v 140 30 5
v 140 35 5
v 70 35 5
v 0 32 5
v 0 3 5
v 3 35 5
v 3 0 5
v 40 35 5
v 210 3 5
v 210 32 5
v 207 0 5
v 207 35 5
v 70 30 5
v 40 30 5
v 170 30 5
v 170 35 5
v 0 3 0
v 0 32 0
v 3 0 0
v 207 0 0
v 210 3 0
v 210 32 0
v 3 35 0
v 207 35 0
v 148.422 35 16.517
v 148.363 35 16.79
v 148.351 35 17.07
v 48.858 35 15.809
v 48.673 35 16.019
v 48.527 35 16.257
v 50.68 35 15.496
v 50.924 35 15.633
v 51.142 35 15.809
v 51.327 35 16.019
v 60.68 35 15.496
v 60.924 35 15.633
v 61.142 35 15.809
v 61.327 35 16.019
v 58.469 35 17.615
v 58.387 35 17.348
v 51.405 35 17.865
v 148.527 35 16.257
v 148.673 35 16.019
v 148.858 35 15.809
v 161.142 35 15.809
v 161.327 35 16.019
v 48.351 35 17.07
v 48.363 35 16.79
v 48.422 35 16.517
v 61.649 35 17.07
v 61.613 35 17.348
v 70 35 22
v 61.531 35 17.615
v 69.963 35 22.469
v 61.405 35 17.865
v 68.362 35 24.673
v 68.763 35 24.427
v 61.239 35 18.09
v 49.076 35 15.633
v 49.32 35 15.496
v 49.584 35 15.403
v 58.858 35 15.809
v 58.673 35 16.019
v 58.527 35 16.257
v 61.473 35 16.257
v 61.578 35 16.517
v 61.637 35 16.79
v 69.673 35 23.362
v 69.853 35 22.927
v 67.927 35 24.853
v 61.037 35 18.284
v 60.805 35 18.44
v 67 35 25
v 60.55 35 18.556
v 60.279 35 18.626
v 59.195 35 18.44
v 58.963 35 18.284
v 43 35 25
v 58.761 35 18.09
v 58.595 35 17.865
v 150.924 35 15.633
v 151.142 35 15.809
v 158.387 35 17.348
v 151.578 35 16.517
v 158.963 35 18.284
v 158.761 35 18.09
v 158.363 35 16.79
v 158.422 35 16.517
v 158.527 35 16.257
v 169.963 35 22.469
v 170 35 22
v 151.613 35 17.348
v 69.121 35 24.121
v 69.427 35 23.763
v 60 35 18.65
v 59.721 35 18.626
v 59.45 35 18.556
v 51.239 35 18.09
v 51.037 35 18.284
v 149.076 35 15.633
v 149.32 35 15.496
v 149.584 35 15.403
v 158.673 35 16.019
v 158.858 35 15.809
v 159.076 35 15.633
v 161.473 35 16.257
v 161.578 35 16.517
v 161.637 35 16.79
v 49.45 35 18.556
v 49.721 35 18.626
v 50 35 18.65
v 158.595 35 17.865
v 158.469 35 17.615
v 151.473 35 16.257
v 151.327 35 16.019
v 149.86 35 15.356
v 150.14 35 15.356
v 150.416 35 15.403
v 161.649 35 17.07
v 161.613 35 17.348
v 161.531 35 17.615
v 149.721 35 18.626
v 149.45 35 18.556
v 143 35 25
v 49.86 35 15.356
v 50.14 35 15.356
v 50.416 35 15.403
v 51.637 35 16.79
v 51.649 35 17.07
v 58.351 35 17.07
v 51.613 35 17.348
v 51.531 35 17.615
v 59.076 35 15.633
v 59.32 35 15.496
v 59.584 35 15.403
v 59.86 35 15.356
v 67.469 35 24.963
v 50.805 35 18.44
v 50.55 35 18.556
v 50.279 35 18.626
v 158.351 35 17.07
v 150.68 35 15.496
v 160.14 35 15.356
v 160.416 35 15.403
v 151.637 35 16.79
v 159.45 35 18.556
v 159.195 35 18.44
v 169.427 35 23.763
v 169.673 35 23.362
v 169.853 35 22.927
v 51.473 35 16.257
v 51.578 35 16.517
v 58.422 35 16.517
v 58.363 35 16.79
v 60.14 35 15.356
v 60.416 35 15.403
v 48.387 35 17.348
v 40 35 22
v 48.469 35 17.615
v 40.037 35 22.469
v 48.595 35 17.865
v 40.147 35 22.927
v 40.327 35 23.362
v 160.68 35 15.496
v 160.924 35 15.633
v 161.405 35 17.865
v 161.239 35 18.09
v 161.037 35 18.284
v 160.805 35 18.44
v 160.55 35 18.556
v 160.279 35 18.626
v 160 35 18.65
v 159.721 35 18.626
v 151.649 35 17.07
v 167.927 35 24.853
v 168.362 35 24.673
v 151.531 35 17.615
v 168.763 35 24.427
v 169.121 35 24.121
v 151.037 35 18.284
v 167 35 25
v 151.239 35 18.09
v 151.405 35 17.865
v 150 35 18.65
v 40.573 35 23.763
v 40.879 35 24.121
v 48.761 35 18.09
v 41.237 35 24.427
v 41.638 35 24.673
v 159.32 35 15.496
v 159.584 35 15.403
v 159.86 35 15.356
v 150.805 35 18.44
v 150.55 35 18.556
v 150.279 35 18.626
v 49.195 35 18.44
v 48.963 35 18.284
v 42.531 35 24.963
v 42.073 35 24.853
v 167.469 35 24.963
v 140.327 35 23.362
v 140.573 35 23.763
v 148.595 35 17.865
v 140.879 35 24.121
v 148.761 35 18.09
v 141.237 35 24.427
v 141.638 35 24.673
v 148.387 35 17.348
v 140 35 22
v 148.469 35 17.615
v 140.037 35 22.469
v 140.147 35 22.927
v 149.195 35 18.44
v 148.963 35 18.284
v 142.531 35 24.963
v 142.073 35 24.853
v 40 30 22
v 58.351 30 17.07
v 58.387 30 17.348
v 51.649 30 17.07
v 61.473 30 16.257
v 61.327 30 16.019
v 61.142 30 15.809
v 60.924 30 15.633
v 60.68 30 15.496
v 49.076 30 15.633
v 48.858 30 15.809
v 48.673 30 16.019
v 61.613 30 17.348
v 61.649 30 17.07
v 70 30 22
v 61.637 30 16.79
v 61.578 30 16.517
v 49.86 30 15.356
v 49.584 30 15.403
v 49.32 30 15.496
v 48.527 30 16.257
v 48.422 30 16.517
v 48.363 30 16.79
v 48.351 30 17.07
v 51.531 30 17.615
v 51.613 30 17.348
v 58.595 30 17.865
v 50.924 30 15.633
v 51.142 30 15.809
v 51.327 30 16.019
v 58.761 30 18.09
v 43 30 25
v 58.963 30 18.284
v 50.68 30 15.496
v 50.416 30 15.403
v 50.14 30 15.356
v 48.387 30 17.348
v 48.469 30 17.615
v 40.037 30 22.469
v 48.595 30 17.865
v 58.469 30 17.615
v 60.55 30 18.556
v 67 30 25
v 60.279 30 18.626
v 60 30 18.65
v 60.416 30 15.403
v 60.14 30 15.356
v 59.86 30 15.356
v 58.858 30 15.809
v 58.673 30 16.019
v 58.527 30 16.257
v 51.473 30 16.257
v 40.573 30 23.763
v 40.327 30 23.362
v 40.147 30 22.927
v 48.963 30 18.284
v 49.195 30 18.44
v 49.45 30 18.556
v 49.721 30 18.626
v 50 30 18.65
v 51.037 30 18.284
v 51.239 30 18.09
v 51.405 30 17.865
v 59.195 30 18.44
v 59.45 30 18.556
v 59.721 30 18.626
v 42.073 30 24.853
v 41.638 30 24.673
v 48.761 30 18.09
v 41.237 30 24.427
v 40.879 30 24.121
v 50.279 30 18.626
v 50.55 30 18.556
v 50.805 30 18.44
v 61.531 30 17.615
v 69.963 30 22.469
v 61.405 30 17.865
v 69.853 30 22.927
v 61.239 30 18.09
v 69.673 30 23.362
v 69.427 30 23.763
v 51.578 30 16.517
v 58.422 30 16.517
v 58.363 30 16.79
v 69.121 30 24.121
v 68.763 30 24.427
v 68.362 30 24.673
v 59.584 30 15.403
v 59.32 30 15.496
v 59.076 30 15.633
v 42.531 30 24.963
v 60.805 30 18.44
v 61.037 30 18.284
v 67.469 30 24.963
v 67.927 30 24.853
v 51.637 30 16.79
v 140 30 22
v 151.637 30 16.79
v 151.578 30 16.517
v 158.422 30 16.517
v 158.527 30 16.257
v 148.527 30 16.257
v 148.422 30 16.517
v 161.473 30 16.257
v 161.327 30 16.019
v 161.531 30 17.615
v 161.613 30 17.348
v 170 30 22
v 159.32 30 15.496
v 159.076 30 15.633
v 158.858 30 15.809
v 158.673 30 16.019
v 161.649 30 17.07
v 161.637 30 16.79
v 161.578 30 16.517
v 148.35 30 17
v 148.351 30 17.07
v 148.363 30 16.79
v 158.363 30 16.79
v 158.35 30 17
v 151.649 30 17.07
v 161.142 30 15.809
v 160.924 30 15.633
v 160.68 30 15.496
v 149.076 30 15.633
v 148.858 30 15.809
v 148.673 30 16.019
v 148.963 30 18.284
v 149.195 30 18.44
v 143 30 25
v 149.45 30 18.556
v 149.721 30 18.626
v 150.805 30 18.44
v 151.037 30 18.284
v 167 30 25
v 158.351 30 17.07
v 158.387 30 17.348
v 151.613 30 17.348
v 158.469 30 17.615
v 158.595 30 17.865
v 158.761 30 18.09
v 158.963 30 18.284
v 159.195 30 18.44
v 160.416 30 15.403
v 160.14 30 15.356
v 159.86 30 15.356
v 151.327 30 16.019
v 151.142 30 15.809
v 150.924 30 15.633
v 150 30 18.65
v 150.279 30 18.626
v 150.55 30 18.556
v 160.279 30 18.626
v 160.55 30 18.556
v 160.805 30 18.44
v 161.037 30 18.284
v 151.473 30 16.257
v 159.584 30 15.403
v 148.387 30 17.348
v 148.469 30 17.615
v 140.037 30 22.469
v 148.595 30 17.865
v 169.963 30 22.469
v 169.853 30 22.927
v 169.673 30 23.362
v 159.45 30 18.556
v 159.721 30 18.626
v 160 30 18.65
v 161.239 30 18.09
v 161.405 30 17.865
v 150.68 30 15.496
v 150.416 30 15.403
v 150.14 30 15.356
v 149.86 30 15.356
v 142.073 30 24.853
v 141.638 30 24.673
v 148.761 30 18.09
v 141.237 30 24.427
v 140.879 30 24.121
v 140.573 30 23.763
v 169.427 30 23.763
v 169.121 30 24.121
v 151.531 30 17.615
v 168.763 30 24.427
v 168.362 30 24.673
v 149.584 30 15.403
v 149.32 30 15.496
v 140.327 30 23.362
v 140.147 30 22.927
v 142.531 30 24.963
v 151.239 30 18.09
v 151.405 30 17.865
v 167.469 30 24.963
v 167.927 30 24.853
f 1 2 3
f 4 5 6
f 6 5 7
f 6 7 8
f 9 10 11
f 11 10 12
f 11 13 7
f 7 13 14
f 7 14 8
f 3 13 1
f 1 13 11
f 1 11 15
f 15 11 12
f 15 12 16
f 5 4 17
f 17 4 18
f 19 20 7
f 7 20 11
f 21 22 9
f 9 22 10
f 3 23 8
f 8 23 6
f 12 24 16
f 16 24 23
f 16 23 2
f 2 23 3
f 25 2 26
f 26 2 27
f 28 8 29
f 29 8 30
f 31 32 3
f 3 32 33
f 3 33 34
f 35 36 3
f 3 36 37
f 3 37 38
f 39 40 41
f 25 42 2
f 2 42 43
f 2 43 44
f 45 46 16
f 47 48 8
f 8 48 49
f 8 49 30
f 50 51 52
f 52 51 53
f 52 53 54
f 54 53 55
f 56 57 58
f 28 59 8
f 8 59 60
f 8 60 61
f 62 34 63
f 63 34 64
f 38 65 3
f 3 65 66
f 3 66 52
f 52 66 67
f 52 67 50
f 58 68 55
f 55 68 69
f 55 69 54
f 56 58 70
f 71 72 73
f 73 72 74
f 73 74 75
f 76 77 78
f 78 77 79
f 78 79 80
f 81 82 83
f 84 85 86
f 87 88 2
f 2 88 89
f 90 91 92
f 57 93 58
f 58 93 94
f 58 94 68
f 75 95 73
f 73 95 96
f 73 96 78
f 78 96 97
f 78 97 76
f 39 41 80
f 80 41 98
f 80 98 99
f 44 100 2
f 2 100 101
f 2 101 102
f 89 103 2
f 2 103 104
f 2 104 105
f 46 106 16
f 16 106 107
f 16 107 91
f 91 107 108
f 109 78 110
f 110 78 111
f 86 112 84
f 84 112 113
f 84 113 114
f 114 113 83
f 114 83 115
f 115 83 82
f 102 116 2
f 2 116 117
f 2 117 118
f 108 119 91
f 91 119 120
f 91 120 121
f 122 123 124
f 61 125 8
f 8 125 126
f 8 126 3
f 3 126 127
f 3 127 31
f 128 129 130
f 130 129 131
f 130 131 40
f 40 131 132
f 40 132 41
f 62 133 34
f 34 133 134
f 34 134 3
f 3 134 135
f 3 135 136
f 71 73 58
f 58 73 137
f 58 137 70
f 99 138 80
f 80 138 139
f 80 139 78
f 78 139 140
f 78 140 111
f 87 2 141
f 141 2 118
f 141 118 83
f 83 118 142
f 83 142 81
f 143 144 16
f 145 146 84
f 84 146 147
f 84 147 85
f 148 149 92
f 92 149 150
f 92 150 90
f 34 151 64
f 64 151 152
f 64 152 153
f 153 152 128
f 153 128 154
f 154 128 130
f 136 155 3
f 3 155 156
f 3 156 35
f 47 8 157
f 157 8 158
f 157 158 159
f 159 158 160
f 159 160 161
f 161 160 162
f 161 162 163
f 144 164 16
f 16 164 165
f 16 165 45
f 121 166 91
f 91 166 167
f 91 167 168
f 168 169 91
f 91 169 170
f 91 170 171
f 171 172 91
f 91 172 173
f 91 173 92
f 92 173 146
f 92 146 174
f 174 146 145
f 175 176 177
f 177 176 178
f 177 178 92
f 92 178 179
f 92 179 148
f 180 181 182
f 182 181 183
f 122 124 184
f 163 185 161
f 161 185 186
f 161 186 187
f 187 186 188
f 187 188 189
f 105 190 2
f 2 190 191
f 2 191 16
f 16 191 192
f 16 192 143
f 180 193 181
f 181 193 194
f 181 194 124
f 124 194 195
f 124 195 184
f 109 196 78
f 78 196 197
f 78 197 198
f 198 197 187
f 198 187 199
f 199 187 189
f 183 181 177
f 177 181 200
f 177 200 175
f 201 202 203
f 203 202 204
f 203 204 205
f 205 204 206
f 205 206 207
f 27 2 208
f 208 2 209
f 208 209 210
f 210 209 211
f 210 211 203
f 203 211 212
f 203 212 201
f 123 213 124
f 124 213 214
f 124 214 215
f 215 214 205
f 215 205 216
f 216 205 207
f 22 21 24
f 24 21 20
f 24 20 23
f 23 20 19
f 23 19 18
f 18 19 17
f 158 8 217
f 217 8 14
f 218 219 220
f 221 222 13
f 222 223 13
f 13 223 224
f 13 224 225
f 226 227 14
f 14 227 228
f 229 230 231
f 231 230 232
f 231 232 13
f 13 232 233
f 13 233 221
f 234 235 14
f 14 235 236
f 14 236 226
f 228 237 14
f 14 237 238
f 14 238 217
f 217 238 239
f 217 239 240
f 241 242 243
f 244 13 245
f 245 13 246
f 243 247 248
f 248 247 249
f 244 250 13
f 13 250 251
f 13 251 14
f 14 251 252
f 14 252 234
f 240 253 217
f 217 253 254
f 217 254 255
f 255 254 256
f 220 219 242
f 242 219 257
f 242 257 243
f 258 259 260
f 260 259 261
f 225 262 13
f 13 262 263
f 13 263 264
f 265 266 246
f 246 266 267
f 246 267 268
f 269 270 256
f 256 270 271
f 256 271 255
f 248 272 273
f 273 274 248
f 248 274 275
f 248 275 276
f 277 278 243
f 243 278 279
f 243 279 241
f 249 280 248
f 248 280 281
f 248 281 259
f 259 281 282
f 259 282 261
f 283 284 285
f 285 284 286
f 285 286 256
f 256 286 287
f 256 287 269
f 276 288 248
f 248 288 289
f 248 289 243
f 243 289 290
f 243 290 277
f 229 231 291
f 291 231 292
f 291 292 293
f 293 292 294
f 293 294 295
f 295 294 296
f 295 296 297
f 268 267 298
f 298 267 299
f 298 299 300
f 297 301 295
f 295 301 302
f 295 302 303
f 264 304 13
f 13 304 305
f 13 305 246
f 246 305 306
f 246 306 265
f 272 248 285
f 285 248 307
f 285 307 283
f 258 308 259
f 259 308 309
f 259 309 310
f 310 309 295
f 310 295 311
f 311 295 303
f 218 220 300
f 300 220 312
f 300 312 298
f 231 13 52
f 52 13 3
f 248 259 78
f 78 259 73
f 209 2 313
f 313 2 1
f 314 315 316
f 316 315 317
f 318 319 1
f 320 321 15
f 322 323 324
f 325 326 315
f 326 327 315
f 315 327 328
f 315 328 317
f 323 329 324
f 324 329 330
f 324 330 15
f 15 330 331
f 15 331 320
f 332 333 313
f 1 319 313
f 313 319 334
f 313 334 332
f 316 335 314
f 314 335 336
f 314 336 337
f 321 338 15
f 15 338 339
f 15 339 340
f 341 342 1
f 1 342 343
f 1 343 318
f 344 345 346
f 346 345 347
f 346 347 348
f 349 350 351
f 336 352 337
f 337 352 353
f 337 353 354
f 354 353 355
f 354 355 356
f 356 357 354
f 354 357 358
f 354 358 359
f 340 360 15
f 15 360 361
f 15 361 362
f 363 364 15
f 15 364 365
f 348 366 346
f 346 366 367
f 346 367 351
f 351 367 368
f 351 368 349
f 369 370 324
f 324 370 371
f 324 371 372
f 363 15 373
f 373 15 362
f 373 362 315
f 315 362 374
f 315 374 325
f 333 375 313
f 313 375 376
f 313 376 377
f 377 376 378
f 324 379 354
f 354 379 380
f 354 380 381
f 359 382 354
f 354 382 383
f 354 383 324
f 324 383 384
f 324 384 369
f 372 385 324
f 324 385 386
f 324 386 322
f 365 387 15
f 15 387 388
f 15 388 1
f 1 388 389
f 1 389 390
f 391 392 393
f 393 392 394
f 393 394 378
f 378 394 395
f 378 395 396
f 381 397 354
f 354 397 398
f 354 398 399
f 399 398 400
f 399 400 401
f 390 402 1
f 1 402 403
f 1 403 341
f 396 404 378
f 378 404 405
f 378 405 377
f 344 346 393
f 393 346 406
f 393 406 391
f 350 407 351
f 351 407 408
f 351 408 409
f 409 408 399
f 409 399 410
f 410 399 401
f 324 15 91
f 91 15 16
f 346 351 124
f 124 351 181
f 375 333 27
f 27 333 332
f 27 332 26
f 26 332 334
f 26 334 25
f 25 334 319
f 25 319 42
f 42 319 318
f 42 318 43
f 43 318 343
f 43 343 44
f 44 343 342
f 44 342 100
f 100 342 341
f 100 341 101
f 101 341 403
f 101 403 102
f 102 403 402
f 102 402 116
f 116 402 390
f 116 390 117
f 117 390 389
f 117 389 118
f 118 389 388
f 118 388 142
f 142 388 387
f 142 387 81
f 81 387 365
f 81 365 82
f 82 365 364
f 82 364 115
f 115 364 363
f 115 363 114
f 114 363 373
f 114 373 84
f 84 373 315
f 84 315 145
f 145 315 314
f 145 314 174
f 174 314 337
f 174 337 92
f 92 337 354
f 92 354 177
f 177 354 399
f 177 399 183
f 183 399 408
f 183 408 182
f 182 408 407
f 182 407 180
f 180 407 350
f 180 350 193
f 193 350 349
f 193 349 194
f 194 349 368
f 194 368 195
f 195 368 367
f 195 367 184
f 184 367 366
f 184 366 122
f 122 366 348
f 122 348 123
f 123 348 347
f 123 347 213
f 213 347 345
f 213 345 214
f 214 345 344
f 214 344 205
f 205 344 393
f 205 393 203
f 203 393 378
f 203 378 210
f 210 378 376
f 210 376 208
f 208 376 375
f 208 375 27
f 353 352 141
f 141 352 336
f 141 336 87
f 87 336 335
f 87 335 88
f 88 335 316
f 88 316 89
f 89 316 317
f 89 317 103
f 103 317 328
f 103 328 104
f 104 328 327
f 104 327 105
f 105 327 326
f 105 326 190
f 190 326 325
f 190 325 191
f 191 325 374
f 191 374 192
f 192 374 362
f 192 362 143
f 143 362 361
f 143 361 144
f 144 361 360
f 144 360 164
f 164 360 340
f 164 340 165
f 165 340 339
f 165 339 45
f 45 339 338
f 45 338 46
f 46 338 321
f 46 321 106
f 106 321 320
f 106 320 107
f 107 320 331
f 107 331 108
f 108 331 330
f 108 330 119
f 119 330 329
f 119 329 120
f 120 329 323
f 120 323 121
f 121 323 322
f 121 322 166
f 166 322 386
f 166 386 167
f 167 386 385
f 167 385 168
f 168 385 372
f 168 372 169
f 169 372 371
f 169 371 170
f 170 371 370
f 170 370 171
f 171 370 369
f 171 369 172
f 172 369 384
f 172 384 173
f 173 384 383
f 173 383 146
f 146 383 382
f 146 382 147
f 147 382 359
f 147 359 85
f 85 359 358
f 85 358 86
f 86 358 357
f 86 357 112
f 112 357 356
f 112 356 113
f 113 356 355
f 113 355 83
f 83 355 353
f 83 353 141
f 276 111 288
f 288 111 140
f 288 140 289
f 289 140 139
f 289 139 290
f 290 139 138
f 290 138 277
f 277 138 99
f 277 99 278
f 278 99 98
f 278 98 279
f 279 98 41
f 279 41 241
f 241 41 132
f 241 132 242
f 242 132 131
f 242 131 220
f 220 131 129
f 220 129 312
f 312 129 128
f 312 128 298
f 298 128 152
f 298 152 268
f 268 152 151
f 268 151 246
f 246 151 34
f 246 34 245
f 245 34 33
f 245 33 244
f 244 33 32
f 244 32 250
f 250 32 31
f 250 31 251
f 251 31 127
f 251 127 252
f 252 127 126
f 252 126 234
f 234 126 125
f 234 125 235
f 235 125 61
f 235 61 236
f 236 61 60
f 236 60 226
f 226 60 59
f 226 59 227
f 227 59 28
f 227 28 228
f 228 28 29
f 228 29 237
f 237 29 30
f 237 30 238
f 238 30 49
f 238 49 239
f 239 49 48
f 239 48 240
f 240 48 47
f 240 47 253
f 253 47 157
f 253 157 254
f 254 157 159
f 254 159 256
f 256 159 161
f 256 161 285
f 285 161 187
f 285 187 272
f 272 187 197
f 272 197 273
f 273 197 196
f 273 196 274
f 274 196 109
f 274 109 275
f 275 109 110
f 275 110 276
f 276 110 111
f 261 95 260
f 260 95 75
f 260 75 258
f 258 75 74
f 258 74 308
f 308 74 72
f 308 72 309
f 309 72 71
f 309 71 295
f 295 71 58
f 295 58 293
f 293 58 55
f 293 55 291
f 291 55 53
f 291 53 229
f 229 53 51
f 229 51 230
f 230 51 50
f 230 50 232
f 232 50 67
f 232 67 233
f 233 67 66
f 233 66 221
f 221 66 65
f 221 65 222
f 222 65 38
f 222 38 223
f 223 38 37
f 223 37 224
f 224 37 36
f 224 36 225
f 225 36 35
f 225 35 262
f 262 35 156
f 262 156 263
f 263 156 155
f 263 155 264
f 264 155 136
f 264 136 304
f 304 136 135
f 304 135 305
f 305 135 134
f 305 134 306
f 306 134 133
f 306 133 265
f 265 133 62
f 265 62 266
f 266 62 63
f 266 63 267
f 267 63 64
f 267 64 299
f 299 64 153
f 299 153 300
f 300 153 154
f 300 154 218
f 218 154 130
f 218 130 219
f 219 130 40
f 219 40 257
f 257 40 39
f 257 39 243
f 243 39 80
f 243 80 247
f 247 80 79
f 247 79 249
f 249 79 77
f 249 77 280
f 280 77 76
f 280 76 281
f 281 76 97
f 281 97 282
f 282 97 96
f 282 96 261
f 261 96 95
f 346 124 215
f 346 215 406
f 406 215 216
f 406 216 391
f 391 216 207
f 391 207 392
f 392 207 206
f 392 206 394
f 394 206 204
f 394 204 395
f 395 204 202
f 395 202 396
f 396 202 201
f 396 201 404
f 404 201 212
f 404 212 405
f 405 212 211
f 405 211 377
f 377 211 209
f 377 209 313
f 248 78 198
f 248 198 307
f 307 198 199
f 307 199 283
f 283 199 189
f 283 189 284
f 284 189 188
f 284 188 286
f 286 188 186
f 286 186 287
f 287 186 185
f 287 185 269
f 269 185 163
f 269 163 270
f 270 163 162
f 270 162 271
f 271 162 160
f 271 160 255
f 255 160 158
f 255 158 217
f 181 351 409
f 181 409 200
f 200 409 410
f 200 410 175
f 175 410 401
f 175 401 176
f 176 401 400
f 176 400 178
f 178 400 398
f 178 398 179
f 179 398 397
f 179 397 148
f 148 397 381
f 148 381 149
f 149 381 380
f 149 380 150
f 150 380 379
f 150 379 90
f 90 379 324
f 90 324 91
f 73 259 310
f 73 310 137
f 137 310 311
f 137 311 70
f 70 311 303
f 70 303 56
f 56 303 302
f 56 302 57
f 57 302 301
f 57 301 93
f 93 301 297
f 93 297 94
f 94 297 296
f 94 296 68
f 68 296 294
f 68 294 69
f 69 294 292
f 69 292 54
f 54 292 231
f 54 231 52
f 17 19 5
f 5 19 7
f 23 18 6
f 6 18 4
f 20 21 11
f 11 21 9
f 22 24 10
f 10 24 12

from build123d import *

# Parameters (mm, degrees)
SKETCH_1_W          = 210
SKETCH_1_H          = 35
EXTRUDE_1_DEPTH     = 5
SKETCH_2_W          = 30
SKETCH_2_H          = 5
EXTRUDE_2_DEPTH     = 20
SKETCH_3_R          = 1.65
CUT_EXTRUDE_1_DEPTH = 10
FILLET_1_R          = 3
CHAMFER_1_SIZE      = 3


with BuildPart() as part:
    # 草图1 → 凸台-拉伸1 (new body)
    with BuildSketch(Plane.XY):
        with Locations((105, 17.5)):
            Rectangle(SKETCH_1_W, SKETCH_1_H)
    extrude(amount=EXTRUDE_1_DEPTH)

    # 草图2 → 凸台-拉伸2 (add)
    with BuildSketch(Plane.XY.offset(5)):
        with Locations((55, 32.5)):
            Rectangle(SKETCH_2_W, SKETCH_2_H)
        with Locations((155, 32.5)):
            Rectangle(SKETCH_2_W, SKETCH_2_H)
    extrude(amount=EXTRUDE_2_DEPTH)

    # 草图3 → 切除-拉伸1 (cut)
    with BuildSketch(Plane(origin=(0, 35, 0), x_dir=(1, 0, 0), z_dir=(0, 1, 0))):
        with Locations(Location((160, -17, 0), (0, 0, 270))):
            Circle(SKETCH_3_R)
        with Locations(Location((150, -17, 0), (0, 0, 270))):
            Circle(SKETCH_3_R)
        with Locations(Location((60, -17, 0), (0, 0, 270))):
            Circle(SKETCH_3_R)
        with Locations(Location((50, -17, 0), (0, 0, 270))):
            Circle(SKETCH_3_R)
    extrude(amount=-CUT_EXTRUDE_1_DEPTH, mode=Mode.SUBTRACT)

    # 圆角1
    fillet_1_edges = [part.edges().sort_by_distance(p)[0] for p in [
        (40, 32.5, 25),
        (70, 32.5, 25),
        (140, 32.5, 25),
        (170, 32.5, 25),
    ]]
    fillet(fillet_1_edges, radius=FILLET_1_R)

    # 倒角1
    chamfer_1_edges = [part.edges().sort_by_distance(p)[0] for p in [
        (0, 35, 2.5),
        (210, 35, 2.5),
        (210, 0, 2.5),
        (0, 0, 2.5),
    ]]
    chamfer(chamfer_1_edges, length=CHAMFER_1_SIZE)


solid = part.part
